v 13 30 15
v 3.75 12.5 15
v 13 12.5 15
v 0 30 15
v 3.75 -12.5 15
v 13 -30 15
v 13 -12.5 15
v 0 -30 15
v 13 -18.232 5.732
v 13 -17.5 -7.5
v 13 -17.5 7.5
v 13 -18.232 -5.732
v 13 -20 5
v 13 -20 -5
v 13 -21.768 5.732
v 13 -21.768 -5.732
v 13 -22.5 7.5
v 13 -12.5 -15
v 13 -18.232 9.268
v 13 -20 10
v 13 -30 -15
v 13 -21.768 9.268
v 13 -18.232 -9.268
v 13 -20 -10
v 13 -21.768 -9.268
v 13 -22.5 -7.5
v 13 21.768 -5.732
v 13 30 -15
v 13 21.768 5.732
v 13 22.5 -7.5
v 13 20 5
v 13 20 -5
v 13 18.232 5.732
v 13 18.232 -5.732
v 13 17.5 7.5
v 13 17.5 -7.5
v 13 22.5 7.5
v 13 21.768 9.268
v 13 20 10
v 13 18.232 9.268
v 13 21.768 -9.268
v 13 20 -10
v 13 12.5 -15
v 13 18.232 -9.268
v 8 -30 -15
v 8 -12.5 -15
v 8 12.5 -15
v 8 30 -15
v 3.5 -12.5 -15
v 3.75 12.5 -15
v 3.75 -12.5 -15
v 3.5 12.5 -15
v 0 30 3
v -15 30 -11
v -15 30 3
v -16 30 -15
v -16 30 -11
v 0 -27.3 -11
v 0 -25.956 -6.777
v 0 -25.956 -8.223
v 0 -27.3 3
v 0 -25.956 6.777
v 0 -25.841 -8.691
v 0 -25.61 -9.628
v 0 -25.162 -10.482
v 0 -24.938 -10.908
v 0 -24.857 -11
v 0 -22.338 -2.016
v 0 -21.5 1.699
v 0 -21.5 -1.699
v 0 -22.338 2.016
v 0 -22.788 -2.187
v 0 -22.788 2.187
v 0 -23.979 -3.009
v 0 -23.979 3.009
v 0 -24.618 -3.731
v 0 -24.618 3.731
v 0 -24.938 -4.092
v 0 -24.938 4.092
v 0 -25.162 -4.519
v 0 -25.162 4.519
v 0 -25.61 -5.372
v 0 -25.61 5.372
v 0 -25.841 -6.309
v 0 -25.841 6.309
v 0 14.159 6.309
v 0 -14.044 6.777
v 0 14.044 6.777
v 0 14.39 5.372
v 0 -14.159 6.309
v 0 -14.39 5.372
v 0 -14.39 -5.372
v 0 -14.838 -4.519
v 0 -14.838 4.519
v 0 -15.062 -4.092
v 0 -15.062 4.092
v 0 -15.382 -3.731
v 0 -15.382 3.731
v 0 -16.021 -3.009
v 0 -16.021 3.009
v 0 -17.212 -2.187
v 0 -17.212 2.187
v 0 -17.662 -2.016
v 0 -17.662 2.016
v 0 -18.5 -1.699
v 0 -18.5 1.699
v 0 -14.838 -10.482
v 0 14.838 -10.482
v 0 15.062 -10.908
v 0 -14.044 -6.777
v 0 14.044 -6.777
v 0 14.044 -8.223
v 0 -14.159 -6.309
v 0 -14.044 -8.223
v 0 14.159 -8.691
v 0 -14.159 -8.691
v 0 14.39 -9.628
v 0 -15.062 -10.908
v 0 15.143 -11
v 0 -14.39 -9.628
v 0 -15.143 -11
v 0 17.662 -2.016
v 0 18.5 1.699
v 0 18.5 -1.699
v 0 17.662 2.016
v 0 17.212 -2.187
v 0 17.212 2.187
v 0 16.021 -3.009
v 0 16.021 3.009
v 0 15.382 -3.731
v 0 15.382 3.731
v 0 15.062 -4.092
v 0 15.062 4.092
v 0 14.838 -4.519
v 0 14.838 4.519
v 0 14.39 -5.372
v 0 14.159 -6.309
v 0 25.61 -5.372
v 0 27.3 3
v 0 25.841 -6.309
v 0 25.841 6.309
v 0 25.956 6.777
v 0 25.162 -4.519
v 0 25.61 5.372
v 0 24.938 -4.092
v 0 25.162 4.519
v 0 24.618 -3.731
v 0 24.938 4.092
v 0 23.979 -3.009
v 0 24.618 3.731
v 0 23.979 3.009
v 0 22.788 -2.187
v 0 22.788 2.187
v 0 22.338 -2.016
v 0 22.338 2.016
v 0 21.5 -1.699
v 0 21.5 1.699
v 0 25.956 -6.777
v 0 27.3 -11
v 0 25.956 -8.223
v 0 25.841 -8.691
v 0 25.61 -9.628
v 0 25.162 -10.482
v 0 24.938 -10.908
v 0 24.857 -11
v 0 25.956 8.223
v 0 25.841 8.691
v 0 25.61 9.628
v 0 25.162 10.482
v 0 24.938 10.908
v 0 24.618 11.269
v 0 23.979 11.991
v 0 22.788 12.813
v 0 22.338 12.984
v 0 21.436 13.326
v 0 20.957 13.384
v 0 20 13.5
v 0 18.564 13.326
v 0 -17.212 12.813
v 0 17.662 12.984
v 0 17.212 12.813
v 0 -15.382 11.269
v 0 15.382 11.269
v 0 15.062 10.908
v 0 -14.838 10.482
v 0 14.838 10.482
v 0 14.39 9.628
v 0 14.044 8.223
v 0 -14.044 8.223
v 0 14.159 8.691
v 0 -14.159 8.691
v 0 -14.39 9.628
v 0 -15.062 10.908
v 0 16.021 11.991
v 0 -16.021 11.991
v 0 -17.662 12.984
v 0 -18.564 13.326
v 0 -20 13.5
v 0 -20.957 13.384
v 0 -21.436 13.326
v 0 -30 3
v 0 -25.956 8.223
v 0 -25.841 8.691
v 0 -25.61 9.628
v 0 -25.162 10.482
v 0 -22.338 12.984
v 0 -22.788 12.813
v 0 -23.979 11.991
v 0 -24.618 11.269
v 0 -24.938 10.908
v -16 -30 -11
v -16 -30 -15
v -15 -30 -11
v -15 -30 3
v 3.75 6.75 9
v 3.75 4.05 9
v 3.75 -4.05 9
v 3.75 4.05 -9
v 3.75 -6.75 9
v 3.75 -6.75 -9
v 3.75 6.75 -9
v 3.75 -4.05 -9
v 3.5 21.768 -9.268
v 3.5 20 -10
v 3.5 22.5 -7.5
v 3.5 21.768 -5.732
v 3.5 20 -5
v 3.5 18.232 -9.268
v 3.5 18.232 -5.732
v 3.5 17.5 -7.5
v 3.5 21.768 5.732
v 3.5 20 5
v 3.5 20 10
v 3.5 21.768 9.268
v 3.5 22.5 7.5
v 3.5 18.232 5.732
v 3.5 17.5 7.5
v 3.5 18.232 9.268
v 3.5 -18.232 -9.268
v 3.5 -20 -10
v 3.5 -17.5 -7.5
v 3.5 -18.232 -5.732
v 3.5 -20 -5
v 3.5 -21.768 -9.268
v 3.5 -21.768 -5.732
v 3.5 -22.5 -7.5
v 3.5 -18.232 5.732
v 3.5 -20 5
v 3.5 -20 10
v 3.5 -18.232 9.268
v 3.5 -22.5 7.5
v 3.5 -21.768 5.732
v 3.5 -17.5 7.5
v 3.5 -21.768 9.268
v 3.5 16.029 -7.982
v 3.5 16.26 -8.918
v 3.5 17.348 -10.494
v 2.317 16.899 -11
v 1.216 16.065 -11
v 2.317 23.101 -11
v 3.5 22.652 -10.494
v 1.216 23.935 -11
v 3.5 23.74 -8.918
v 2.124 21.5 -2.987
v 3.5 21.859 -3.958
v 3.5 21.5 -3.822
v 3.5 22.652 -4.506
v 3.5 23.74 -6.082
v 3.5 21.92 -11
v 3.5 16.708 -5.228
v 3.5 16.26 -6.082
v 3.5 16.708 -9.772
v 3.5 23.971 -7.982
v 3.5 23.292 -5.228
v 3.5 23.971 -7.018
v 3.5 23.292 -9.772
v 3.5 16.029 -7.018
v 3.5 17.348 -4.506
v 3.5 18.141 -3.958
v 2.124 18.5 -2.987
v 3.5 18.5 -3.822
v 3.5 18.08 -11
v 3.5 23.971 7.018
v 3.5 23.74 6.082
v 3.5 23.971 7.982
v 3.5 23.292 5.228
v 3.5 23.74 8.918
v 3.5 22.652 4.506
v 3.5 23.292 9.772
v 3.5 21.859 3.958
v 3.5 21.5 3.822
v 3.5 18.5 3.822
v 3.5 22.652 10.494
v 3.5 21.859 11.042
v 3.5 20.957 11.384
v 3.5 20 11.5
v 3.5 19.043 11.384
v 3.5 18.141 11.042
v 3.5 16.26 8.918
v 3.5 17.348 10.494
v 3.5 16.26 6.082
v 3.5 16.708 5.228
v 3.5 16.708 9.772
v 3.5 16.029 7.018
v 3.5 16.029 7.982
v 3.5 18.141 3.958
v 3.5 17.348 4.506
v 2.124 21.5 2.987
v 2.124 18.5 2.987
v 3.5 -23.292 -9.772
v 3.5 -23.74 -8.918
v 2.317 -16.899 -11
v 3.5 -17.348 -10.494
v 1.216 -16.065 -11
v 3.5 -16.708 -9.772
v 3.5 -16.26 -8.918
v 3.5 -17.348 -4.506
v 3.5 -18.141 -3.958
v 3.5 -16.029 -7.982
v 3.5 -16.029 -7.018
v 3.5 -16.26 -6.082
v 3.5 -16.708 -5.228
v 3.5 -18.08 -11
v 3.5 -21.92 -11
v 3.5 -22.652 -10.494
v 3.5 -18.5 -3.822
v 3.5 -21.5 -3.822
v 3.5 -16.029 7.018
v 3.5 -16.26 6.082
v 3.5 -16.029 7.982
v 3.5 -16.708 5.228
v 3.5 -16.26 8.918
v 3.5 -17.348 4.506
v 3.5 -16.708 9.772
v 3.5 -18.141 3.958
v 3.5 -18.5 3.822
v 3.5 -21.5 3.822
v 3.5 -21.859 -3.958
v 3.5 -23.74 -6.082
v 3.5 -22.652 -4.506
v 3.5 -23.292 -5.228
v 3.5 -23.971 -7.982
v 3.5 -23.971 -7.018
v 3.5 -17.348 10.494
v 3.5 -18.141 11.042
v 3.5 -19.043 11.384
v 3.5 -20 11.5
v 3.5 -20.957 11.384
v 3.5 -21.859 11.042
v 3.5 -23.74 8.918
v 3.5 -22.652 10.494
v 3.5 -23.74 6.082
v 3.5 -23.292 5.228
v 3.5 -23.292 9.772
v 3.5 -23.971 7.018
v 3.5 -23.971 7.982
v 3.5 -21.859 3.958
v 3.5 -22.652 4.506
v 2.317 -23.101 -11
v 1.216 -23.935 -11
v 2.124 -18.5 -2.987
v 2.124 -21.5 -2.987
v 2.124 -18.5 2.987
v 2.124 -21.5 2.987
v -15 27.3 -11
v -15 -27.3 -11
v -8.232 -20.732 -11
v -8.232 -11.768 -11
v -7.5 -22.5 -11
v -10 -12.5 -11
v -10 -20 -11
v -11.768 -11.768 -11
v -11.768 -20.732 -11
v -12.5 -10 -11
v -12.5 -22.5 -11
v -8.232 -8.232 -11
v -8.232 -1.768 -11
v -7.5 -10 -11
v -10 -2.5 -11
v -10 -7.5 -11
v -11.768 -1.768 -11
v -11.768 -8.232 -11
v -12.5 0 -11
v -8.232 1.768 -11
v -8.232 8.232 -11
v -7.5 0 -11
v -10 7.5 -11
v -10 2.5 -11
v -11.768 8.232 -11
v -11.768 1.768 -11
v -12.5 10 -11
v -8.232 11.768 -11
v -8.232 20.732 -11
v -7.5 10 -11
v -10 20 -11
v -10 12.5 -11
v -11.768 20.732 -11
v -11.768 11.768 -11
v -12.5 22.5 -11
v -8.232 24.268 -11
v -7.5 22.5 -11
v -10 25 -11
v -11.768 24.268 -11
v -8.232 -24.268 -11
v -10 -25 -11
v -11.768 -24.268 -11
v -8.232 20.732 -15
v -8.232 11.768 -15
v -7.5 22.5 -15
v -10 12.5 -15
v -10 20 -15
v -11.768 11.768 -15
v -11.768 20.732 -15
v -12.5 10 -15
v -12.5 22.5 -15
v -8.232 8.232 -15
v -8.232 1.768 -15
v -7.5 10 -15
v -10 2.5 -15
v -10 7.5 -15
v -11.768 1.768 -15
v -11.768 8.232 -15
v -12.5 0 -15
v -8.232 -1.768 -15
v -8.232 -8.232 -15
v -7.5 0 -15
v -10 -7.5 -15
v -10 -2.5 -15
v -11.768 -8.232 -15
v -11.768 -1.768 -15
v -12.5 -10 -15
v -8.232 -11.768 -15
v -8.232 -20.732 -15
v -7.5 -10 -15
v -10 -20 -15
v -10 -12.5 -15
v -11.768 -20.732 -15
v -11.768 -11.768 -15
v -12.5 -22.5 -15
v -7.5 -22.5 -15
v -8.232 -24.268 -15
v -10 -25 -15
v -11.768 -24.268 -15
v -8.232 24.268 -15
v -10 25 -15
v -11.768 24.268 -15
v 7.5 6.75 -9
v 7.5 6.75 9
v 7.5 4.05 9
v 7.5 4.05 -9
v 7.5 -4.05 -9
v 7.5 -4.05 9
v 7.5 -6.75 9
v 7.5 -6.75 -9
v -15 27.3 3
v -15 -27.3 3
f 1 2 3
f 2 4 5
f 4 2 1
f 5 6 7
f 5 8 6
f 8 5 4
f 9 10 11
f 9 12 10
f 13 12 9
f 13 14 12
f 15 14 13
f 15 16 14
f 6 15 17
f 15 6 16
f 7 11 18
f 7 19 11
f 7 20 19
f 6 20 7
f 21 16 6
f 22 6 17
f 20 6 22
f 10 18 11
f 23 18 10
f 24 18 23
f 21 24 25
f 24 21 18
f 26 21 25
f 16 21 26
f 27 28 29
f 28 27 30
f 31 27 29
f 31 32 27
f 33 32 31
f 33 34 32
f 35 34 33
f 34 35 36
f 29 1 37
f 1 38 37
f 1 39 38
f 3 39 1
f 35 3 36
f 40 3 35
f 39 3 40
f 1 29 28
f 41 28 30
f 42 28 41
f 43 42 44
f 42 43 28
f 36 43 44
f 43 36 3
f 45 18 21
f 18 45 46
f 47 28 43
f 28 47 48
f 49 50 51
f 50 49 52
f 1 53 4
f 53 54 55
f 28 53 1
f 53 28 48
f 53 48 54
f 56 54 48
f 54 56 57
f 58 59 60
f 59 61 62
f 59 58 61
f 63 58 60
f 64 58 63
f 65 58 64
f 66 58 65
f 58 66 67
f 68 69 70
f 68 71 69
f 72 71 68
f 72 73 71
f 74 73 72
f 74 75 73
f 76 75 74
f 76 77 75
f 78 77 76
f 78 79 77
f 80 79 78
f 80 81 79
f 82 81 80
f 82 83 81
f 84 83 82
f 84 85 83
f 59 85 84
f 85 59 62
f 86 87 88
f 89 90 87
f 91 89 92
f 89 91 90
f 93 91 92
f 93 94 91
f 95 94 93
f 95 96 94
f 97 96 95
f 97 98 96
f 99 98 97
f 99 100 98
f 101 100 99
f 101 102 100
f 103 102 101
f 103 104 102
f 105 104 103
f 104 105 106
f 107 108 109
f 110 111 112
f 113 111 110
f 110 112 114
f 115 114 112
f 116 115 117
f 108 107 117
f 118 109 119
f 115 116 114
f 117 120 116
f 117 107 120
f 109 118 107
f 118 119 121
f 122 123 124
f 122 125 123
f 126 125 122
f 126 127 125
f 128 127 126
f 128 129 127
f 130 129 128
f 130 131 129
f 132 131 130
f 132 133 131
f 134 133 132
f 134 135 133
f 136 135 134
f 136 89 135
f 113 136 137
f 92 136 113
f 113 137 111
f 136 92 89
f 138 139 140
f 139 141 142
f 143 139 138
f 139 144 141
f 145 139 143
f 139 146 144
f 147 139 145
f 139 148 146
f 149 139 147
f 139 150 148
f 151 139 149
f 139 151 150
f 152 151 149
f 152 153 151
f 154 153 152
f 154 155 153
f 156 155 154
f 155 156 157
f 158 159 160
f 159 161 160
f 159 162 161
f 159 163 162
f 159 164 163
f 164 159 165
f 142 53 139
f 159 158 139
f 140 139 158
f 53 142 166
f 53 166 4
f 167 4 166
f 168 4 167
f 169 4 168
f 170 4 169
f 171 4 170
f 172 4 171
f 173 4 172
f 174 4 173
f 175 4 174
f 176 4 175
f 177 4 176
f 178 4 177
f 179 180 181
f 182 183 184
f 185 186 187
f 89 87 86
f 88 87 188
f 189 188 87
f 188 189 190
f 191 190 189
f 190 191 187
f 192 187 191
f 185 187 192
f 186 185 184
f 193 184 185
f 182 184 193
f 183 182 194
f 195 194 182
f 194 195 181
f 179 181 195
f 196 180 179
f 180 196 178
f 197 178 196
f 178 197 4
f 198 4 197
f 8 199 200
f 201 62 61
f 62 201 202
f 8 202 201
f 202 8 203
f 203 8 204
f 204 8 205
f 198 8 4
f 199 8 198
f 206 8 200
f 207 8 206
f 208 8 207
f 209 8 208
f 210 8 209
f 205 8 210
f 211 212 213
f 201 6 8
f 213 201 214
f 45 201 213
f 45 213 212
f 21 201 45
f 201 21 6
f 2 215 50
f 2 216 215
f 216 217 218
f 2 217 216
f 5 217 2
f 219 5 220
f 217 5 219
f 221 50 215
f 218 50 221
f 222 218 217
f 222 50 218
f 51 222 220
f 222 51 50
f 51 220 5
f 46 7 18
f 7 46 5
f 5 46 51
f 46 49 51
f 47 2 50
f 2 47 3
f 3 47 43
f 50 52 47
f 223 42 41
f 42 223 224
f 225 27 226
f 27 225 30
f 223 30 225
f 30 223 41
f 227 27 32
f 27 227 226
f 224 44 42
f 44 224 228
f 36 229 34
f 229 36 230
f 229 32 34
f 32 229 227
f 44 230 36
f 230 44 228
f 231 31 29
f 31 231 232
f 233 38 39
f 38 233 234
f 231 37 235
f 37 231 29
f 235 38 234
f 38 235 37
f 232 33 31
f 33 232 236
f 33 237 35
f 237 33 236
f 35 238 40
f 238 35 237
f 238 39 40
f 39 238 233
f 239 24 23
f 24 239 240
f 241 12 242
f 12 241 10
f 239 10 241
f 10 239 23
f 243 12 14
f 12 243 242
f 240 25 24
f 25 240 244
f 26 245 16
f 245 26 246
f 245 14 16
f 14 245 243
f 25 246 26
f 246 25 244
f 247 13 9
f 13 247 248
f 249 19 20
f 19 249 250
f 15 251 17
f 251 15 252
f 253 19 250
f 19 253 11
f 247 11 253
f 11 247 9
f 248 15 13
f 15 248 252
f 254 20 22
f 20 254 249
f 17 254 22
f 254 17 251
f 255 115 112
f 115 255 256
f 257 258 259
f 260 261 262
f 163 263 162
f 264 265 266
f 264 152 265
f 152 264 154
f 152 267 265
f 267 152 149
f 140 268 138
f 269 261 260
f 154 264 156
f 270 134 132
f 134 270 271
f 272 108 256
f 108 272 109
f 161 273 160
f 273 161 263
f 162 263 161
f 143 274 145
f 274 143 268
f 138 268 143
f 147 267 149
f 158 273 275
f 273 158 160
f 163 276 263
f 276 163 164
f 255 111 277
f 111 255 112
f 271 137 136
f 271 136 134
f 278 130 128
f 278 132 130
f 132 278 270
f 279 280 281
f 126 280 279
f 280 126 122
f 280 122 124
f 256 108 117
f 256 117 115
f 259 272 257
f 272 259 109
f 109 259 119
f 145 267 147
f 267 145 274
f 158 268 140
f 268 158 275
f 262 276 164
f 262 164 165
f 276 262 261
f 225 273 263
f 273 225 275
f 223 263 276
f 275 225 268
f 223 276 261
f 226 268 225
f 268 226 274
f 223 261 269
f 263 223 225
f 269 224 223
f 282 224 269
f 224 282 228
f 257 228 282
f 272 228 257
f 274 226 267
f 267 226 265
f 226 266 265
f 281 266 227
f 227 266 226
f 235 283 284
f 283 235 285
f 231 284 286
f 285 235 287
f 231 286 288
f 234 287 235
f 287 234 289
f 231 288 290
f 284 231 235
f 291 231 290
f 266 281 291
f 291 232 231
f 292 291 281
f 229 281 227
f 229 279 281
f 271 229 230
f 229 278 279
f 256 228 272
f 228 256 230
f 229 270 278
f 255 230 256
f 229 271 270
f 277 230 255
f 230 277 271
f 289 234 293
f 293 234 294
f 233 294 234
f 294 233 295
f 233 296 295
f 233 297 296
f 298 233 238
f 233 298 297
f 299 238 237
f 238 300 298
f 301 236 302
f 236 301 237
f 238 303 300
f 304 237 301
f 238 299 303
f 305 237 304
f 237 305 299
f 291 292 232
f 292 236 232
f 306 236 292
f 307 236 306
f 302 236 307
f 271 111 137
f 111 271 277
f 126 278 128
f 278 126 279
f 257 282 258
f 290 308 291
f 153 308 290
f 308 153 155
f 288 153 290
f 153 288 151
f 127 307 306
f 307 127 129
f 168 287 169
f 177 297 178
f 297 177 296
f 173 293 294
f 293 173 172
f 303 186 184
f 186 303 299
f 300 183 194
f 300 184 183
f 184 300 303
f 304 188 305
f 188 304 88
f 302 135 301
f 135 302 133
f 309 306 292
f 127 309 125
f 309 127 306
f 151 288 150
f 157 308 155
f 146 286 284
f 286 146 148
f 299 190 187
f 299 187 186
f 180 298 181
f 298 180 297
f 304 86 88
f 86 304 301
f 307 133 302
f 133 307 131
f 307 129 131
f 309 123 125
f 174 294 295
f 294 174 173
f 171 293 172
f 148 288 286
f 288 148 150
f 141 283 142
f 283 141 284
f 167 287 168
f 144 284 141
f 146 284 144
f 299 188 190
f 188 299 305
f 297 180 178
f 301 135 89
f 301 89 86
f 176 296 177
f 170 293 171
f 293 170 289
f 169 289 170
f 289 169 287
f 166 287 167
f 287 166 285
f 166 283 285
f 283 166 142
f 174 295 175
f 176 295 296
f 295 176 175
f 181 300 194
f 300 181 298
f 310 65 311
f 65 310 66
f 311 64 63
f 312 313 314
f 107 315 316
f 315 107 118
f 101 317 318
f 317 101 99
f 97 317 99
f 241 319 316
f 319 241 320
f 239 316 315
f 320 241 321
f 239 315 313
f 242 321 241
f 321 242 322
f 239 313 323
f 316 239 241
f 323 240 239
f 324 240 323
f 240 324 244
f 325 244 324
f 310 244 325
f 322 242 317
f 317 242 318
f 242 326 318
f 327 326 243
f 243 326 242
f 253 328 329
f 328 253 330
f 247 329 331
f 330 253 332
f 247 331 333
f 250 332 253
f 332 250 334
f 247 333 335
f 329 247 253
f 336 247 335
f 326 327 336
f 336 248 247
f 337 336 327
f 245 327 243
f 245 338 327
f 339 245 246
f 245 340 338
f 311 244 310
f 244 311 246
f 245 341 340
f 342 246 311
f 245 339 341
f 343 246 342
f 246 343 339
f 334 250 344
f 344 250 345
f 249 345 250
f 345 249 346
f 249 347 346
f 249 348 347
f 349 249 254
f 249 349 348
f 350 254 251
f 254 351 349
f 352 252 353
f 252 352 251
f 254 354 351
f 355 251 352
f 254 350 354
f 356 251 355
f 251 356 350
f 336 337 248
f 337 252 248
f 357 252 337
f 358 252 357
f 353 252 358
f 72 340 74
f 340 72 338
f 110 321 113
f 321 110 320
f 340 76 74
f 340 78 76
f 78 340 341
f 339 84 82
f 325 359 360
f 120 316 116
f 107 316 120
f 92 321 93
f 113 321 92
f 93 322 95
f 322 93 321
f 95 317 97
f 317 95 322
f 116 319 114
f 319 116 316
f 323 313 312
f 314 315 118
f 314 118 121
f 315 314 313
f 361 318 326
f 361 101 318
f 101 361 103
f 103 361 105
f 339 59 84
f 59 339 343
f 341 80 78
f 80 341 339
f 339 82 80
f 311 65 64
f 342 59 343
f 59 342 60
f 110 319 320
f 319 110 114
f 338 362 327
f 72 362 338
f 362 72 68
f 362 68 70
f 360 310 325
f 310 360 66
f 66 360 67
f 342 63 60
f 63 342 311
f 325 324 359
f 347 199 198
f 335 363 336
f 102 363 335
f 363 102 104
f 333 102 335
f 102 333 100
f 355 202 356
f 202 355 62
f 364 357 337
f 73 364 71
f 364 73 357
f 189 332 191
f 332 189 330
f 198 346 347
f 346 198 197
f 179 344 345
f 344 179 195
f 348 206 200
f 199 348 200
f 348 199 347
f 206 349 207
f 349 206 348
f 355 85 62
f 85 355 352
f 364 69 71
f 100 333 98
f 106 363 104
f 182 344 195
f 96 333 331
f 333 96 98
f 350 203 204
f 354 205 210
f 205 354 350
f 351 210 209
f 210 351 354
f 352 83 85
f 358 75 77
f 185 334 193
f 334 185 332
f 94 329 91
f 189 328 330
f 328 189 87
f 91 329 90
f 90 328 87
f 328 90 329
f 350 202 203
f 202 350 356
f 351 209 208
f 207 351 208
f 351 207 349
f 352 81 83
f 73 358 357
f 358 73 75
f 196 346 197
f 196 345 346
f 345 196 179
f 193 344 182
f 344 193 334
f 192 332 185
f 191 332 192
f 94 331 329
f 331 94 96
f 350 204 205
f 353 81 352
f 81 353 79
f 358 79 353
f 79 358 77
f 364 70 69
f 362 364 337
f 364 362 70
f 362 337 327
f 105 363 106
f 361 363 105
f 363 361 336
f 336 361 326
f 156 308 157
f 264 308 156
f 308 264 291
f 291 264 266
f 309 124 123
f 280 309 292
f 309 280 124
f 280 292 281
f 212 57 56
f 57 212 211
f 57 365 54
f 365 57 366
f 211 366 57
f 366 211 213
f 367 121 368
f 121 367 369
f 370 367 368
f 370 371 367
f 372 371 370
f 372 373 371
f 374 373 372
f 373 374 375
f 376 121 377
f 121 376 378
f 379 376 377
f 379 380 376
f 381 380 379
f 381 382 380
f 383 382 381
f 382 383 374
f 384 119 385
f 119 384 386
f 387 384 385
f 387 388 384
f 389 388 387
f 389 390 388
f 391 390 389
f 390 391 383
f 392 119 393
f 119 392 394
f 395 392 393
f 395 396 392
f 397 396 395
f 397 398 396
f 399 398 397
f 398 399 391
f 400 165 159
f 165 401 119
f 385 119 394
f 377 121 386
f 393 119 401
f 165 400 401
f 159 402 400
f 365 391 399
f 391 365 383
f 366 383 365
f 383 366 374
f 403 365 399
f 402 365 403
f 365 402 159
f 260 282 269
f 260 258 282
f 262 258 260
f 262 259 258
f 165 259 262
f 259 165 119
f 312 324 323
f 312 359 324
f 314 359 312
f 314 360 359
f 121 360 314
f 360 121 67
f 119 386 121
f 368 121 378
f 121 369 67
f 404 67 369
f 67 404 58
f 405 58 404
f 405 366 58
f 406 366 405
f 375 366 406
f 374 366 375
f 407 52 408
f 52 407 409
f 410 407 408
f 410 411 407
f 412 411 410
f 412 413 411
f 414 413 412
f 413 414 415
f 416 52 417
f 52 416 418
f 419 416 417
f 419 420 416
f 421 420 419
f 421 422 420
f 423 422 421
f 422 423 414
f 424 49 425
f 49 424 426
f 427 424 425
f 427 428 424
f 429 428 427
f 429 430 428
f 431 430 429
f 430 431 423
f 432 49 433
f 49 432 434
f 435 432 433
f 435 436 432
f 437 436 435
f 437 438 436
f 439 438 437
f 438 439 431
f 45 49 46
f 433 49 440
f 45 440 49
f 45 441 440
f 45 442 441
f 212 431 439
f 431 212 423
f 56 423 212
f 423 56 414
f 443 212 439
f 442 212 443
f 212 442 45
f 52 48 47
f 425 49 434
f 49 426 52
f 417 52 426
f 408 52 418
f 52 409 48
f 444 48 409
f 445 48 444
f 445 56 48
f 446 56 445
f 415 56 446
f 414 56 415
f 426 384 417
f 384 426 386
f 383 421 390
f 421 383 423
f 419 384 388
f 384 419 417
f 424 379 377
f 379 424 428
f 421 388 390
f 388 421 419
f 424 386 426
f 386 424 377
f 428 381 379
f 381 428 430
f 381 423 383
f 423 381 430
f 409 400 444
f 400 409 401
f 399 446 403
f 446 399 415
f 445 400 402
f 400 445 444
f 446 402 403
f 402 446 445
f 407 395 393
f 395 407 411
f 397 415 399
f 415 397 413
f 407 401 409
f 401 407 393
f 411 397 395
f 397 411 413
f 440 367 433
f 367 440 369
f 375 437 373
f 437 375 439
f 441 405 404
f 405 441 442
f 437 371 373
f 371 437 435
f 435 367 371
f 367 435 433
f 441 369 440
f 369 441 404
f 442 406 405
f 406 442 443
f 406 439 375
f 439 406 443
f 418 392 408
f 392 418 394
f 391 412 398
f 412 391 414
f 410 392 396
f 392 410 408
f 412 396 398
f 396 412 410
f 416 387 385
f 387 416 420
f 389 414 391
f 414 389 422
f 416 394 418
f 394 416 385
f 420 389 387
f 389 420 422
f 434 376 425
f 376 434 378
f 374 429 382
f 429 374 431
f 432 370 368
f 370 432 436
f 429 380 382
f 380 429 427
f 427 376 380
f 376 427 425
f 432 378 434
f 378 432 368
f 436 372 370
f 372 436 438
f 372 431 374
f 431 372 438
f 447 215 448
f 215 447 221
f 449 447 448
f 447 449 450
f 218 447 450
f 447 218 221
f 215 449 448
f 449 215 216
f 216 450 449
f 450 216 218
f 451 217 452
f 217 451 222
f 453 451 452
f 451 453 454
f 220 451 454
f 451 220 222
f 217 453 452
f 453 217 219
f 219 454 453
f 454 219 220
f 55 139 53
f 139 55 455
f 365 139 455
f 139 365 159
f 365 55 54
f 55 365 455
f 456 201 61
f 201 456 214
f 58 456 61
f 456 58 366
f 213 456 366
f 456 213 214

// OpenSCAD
// 90 d Plate with out tabs and ends
//block shape
x=30;
y=60;
z=13;

// track channel
f=x+10;
g=25;
h=9.5;
// block top
e=20;
r=y+10;
t=16.5;

// spacing of screw holes
cx=15;
cy=40;
dx=15;
dy=45;

// rotation
gx=90;

rotate([0,gx,0])
difference()
{
    translate([0,0,z]/2) cube ([x,y,z],center=true);
    translate([0,0,z+4]/2) cube([f,g,h],center=true);
 //   translate([49,0,z+11]/2) cube ([e,r,t],center=true);
       // translate([-49,0,z+11]/2) cube ([e,r,t],center=true);

  translate([cx,cy,0]/2) cylinder(d=5, h=50,  center=true);
  translate([-cx,cy,0]/2) cylinder(d=5, h=50,  center=true);
    translate([cx,-cy,0]/2) cylinder(d=5, h=50,  center=true);
    translate([-cx,-cy,0]/2) cylinder(d=5, h=50,  center=true);
      translate([cx,cy,0]/2)  cylinder(d1=16, d2=8, h=7,  center=true);
 translate([-cx,cy,0]/2) cylinder(d1=16, d2=8, h=7, center=true);
    translate([cx,-cy,0]/2) cylinder(d1=16, d2=8, h=7,  center=true);
    translate([-cx,-cy,0]/2) cylinder(d1=16, d2=8, h=7,  center=true);    
// zip tie knotches    
    translate([0,-cy/2,11.5-10]) cube([18,3,4],center=true);
    translate([0,cy/2,11.5-10]) cube([18,3,4],center=true);
// removal knotches
//       translate([0,-(6.8+51)/2,11.5]) cube([8,3,4],center=true);
//   translate([0,(6.8+51)/2,11.5-10]) cube([8,3,4],center=true);
//   translate([(6.8+51)/2,0,11.5-11]) cube([3,8,2],center=true);
  // translate([-(6.8+51)/2,0,11.5-11]) cube([3,8,2],center=true);
}

//rotate([0,gx,0])
difference ()
{
    //plate for 5 bolt holes
    translate([-4,0,-13]) cube([24,60,4],center=true);
    translate([-10,0,-8])       cylinder(d=5, h=60, center=true);
      translate([-10,22.5,-8])cylinder(d=5, h=60, center=true);
      translate([-10,-22.5,-8])    cylinder(d=5, h=60, center=true);
        translate([-10,7.5,-8])    cylinder(d=5, h=60, center=true);
      translate([-10,-7.5,-8])    cylinder(d=5, h=60, center=true);
   //notch to keep opening for C-channel
    translate([6,0,-15]) cube([5,25,15],center=true);
}
// tabs for slots
 rotate([0,gx,0])
 translate([0,(6.8+4)/2,z-8]) cube([18,2.7,5],center=true);
rotate([0,gx,0])
 translate([0,-(6.8+4)/2,z-8]) cube([18,2.7,5],center=true);
//blocks for  sides
 rotate([0,gx,0])
translate([6,57.3/2,-6]) cube([18,2.7,18],center=true);
rotate([0,gx,0])
translate([6,-57.3/2,-6]) cube([18,2.7,18],center=true);

 
